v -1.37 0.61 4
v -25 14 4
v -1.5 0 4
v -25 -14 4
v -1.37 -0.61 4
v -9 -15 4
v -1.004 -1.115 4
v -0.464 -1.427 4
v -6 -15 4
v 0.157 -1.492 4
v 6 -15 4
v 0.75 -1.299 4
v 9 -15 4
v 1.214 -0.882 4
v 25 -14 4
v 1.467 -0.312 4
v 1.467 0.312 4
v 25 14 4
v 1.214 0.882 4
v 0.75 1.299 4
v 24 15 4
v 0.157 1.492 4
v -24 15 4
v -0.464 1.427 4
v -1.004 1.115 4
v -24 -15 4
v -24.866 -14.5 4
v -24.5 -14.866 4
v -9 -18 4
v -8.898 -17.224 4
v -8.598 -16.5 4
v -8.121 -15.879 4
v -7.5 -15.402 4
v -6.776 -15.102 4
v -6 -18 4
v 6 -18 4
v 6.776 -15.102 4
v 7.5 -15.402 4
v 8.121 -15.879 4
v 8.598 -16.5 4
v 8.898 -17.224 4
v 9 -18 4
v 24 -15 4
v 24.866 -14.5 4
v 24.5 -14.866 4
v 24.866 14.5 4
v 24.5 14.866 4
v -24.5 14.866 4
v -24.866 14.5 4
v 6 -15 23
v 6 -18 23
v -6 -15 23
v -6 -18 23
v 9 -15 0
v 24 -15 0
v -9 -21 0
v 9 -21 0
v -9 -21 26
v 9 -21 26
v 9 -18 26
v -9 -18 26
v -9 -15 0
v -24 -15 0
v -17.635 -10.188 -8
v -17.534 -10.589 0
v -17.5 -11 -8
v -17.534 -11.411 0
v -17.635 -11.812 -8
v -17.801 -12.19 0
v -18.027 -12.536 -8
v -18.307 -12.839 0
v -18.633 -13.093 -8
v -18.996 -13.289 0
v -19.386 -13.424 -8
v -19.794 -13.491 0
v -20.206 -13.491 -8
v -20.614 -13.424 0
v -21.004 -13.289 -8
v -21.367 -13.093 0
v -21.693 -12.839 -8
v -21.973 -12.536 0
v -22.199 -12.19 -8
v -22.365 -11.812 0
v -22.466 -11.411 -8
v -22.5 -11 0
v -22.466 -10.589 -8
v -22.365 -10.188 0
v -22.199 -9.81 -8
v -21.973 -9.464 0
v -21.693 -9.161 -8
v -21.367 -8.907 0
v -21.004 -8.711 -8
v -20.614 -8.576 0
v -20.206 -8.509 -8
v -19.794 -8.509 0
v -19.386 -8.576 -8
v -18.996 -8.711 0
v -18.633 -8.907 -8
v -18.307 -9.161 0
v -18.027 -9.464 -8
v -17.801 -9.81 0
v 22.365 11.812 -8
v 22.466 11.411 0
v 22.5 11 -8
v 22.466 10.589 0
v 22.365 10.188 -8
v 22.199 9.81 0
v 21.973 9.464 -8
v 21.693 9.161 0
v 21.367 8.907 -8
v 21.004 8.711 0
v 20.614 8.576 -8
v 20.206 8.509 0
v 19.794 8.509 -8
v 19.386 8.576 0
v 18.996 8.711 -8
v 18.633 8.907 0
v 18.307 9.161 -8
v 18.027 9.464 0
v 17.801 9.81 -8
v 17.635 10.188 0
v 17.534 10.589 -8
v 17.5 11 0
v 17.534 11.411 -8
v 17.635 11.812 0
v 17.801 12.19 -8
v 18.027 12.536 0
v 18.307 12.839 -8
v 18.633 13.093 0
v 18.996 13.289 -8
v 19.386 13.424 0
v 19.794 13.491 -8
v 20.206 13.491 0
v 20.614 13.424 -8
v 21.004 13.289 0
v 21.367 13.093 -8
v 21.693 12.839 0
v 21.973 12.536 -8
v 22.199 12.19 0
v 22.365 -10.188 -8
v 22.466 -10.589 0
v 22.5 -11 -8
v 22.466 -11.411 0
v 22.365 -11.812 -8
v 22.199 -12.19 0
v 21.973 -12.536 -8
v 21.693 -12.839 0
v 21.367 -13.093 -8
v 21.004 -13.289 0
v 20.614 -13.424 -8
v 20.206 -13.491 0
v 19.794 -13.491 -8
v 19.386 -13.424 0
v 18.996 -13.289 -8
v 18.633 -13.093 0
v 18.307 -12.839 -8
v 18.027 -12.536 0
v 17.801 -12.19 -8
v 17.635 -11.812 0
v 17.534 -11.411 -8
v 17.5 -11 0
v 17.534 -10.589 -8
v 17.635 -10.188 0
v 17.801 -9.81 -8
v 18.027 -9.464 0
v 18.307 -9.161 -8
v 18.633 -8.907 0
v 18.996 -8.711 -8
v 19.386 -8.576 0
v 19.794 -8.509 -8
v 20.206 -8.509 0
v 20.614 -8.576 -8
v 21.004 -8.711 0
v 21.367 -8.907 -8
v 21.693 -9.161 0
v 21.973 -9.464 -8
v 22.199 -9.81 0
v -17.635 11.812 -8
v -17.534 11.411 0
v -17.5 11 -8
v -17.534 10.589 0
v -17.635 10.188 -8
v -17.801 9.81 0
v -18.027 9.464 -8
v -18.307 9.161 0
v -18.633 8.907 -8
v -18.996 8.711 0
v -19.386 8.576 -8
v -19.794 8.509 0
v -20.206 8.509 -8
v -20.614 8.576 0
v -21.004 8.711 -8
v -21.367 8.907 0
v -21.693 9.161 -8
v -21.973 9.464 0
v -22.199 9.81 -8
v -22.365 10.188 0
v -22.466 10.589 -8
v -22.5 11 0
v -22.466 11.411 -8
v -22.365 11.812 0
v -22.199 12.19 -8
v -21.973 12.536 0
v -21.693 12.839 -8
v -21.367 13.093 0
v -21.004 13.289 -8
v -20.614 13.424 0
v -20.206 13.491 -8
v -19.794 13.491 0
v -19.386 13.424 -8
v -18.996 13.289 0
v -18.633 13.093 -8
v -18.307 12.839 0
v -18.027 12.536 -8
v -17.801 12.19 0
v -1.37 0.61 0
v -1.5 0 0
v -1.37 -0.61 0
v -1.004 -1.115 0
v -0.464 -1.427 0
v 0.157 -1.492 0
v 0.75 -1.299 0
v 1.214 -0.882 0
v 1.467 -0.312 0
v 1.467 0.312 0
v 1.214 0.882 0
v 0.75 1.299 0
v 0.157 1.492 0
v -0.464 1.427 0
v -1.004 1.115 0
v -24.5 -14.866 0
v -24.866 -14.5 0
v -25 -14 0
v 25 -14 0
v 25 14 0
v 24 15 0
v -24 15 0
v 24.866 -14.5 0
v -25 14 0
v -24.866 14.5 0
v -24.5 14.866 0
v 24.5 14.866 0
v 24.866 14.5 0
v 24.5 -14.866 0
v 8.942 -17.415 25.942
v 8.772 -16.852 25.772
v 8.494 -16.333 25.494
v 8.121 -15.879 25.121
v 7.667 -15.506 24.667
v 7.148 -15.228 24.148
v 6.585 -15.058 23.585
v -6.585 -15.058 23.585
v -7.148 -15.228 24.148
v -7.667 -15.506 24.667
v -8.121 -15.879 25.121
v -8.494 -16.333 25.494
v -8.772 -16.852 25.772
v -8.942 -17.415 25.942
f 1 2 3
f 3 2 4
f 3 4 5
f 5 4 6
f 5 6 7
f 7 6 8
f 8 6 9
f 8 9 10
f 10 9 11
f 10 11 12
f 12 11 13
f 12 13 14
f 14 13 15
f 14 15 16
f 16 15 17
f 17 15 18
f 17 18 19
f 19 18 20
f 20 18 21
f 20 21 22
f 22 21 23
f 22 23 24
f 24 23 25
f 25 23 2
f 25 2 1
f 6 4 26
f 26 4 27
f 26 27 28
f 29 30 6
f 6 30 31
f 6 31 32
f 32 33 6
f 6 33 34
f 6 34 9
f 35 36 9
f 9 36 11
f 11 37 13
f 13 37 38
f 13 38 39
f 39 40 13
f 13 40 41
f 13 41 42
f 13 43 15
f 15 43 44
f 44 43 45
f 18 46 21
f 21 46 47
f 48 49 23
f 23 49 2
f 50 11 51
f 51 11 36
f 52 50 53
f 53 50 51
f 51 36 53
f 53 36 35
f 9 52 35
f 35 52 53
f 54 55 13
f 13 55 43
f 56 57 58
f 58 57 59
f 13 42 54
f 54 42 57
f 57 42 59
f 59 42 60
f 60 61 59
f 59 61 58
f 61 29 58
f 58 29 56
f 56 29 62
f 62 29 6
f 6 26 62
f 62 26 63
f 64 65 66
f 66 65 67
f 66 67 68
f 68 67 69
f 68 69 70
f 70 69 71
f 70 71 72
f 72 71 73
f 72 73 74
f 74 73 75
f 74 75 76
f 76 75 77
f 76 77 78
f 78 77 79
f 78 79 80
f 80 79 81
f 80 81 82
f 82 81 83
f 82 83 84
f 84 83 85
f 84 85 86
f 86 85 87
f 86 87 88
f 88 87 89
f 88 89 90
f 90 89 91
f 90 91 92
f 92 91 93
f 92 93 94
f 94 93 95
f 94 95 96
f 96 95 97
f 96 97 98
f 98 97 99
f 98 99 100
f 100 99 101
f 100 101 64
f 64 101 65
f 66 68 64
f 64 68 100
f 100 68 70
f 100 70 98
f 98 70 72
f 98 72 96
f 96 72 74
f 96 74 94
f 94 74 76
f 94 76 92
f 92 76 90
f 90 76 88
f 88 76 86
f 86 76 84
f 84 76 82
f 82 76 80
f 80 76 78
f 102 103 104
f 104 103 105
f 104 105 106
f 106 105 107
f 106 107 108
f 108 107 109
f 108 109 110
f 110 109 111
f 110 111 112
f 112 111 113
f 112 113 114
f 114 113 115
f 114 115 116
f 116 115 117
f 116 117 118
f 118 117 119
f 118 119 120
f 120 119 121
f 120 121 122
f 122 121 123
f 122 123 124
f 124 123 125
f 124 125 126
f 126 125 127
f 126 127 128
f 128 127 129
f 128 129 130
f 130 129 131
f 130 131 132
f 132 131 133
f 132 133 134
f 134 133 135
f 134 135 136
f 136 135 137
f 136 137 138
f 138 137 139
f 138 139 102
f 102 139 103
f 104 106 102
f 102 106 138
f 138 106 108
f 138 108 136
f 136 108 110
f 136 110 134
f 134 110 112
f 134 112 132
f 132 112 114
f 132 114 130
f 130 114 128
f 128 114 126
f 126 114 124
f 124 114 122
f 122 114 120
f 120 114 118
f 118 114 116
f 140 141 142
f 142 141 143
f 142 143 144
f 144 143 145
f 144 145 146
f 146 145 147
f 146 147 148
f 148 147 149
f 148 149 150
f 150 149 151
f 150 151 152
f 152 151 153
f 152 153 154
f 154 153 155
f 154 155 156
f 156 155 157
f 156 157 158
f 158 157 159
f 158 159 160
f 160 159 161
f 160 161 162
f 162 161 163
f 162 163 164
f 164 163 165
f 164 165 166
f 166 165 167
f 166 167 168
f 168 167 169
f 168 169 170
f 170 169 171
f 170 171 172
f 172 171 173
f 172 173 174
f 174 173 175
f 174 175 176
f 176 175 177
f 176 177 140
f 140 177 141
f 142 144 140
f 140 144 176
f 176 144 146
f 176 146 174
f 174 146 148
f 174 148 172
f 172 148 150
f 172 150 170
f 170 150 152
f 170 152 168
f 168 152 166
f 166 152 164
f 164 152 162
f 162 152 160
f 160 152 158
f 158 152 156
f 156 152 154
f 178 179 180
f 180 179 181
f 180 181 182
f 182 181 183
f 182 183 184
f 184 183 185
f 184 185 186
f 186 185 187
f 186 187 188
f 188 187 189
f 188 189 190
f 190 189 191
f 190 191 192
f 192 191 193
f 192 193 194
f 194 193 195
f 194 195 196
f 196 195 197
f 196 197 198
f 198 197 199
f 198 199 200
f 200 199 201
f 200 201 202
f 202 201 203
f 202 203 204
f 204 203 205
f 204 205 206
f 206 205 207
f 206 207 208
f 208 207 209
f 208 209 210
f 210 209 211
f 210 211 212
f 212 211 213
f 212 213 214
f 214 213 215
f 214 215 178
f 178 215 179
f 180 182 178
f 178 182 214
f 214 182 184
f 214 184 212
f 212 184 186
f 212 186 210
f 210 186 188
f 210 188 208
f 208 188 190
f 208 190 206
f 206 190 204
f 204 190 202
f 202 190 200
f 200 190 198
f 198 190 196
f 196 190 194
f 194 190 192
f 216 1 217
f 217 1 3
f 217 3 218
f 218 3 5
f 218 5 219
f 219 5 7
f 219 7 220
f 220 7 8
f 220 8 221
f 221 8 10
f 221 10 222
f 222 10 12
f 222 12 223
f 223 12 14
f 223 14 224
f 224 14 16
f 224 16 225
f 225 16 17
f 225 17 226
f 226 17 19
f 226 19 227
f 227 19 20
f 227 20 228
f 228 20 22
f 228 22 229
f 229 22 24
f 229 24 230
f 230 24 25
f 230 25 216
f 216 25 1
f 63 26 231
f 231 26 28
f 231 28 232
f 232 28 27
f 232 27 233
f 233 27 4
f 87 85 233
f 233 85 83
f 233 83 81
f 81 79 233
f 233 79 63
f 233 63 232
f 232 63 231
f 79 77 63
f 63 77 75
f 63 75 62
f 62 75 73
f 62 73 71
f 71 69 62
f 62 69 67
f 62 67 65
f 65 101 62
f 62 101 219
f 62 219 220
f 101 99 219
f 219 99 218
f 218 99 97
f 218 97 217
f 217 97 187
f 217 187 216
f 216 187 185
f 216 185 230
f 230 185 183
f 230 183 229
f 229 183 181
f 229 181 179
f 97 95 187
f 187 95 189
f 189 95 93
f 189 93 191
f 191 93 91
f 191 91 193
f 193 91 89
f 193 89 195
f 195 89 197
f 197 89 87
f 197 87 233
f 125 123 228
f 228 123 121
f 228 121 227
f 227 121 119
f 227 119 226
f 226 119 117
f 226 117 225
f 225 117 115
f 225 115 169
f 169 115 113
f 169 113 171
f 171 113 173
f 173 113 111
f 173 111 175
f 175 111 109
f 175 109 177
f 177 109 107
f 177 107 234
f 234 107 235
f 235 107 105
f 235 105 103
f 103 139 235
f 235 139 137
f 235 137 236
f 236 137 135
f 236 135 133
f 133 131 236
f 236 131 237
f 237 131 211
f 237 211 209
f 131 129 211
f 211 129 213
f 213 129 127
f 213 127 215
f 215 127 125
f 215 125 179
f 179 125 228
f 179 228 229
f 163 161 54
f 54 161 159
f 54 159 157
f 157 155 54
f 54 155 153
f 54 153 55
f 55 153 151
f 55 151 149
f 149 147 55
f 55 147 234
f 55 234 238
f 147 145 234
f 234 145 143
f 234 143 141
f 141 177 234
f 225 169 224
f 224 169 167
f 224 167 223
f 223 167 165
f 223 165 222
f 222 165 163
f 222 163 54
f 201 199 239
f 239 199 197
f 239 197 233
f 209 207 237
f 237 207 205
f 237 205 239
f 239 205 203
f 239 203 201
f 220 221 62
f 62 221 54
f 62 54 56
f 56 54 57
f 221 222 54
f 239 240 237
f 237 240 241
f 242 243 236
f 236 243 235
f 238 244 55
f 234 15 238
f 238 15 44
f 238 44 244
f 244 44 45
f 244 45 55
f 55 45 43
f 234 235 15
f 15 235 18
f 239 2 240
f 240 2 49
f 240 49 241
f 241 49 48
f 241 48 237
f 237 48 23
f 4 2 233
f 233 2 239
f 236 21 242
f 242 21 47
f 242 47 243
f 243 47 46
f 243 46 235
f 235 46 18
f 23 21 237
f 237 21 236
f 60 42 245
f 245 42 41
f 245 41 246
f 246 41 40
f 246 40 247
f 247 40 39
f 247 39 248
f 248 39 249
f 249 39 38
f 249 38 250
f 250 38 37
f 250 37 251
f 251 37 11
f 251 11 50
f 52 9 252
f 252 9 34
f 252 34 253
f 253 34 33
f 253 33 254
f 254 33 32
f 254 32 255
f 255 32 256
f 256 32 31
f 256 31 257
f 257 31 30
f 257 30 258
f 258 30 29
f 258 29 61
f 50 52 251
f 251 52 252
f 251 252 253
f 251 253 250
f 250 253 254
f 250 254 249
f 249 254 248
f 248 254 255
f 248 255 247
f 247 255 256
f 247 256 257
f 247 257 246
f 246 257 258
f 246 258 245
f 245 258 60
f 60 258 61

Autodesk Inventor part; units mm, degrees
ref_plane "YZ Plane" through (0, 0, 0) normal (1, 0, 0) x (0, 1, 0)
ref_plane "XZ Plane" through (0, 0, 0) normal (0, 1, 0) x (-1, 0, 0)
ref_plane "XY Plane" through (0, 0, 0) normal (0, 0, 1) x (1, 0, 0)
sketch "Sketch1" plane through (0, 0, 0) normal (0, 0, 1) x (1, 0, 0)
  line L0 (25, 15) -> (-25, 15)
  line L1 (-25, 15) -> (-25, -15)
  line L2 (-25, -15) -> (25, -15)
  line L3 (25, -15) -> (25, 15)
  line L4 (25, 15) -> (-25, -15) construction
  line L5 (-25, 15) -> (25, -15) construction
  point P0 (0, 0)
  dimension "d0" = 50
  dimension "d1" = 30
extrude "Extrusion1" add sketch "Sketch1" along normal blind 4
fillet "Fillet1" radius 1 1 edges at (25, 15, 2)
fillet "Fillet2" radius 1 3 edges at (-25, 15, 2) (25, -15, 2) (-25, -15, 2)
sketch "Sketch4" plane through (0, 0, 4) normal (0, 0, 1) x (1, 0, 0)
  circle A0 centre (0, 0) radius 1.5
  dimension "d19" = 3
hole "Hole2" at (0, 0, 4) direction (0, 0, -1) diameter 3 end through all both
sketch "Sketch6" plane through (0, 0, 4) normal (0, 0, 1) x (1, 0, 0)
  circle A0 centre (-20, 11) radius 2.5
  circle A1 centre (20, 11) radius 2.5
  circle A2 centre (-20, -11) radius 2.5
  circle A3 centre (20, -11) radius 2.5
  line L0 (25, -14) -> (25, 14) projected
  line L1 (-25, 14) -> (-25, -14) projected
  line L2 (24, 15) -> (-24, 15) projected
  line L3 (-24, -15) -> (24, -15) projected
  point P0 (0, 0)
  dimension "d27" = 5
  dimension "d28" = 5
  dimension "d29" = 5
  dimension "d30" = 5
  dimension "d38" = 5
  dimension "d39" = 5
  dimension "d40" = 5
  dimension "d41" = 5
  dimension "d42" = 4
  dimension "d43" = 4
  dimension "d44" = 4
  dimension "d45" = 4
sketch "Sketch18" plane through (0, 0, 0) normal (0, 0, -1) x (-1, 0, 0)
  point P0 (0, 0)
extrude "Extrusion10" add sketch "Sketch6" against normal blind 12
sketch "Sketch19" plane through (0, 0, 0) normal (0, 0, -1) x (-1, 0, 0)
  line L0 (24, -15) -> (-24, -15) projected
  line L1 (-9, -15) -> (9, -15)
  line L2 (9, -15) -> (9, -21)
  line L3 (9, -21) -> (-9, -21)
  line L4 (-9, -21) -> (-9, -15)
  point P0 (0, 0)
  dimension "d84" = 18
  dimension "d85" = 6
extrude "Extrusion11" add sketch "Sketch19" against normal blind 26
sketch "Sketch20" plane through (-9, -15, 4) normal (0, 1, 0) x (1, 0, 0)
  point P0 (9, 4)
sketch "Sketch21" plane through (-9, -15, 4) normal (0, 1, 0) x (1, 0, 0)
  line L0 (33, 0) -> (-15, 0) projected
  line L1 (3, 0) -> (15, 0)
  line L2 (15, 0) -> (15, -19)
  line L3 (15, -19) -> (3, -19)
  line L4 (3, -19) -> (3, 0)
  point P0 (9, 4)
  dimension "d88" = 12
  dimension "d89" = 19
extrude "Extrusion12" cut sketch "Sketch21" against normal blind 3
fillet "Fillet11" radius 3 3 edges at (-9, -15, 15) (9, -15, 15) (0, -15, 26)
properties part number "reward v06"
